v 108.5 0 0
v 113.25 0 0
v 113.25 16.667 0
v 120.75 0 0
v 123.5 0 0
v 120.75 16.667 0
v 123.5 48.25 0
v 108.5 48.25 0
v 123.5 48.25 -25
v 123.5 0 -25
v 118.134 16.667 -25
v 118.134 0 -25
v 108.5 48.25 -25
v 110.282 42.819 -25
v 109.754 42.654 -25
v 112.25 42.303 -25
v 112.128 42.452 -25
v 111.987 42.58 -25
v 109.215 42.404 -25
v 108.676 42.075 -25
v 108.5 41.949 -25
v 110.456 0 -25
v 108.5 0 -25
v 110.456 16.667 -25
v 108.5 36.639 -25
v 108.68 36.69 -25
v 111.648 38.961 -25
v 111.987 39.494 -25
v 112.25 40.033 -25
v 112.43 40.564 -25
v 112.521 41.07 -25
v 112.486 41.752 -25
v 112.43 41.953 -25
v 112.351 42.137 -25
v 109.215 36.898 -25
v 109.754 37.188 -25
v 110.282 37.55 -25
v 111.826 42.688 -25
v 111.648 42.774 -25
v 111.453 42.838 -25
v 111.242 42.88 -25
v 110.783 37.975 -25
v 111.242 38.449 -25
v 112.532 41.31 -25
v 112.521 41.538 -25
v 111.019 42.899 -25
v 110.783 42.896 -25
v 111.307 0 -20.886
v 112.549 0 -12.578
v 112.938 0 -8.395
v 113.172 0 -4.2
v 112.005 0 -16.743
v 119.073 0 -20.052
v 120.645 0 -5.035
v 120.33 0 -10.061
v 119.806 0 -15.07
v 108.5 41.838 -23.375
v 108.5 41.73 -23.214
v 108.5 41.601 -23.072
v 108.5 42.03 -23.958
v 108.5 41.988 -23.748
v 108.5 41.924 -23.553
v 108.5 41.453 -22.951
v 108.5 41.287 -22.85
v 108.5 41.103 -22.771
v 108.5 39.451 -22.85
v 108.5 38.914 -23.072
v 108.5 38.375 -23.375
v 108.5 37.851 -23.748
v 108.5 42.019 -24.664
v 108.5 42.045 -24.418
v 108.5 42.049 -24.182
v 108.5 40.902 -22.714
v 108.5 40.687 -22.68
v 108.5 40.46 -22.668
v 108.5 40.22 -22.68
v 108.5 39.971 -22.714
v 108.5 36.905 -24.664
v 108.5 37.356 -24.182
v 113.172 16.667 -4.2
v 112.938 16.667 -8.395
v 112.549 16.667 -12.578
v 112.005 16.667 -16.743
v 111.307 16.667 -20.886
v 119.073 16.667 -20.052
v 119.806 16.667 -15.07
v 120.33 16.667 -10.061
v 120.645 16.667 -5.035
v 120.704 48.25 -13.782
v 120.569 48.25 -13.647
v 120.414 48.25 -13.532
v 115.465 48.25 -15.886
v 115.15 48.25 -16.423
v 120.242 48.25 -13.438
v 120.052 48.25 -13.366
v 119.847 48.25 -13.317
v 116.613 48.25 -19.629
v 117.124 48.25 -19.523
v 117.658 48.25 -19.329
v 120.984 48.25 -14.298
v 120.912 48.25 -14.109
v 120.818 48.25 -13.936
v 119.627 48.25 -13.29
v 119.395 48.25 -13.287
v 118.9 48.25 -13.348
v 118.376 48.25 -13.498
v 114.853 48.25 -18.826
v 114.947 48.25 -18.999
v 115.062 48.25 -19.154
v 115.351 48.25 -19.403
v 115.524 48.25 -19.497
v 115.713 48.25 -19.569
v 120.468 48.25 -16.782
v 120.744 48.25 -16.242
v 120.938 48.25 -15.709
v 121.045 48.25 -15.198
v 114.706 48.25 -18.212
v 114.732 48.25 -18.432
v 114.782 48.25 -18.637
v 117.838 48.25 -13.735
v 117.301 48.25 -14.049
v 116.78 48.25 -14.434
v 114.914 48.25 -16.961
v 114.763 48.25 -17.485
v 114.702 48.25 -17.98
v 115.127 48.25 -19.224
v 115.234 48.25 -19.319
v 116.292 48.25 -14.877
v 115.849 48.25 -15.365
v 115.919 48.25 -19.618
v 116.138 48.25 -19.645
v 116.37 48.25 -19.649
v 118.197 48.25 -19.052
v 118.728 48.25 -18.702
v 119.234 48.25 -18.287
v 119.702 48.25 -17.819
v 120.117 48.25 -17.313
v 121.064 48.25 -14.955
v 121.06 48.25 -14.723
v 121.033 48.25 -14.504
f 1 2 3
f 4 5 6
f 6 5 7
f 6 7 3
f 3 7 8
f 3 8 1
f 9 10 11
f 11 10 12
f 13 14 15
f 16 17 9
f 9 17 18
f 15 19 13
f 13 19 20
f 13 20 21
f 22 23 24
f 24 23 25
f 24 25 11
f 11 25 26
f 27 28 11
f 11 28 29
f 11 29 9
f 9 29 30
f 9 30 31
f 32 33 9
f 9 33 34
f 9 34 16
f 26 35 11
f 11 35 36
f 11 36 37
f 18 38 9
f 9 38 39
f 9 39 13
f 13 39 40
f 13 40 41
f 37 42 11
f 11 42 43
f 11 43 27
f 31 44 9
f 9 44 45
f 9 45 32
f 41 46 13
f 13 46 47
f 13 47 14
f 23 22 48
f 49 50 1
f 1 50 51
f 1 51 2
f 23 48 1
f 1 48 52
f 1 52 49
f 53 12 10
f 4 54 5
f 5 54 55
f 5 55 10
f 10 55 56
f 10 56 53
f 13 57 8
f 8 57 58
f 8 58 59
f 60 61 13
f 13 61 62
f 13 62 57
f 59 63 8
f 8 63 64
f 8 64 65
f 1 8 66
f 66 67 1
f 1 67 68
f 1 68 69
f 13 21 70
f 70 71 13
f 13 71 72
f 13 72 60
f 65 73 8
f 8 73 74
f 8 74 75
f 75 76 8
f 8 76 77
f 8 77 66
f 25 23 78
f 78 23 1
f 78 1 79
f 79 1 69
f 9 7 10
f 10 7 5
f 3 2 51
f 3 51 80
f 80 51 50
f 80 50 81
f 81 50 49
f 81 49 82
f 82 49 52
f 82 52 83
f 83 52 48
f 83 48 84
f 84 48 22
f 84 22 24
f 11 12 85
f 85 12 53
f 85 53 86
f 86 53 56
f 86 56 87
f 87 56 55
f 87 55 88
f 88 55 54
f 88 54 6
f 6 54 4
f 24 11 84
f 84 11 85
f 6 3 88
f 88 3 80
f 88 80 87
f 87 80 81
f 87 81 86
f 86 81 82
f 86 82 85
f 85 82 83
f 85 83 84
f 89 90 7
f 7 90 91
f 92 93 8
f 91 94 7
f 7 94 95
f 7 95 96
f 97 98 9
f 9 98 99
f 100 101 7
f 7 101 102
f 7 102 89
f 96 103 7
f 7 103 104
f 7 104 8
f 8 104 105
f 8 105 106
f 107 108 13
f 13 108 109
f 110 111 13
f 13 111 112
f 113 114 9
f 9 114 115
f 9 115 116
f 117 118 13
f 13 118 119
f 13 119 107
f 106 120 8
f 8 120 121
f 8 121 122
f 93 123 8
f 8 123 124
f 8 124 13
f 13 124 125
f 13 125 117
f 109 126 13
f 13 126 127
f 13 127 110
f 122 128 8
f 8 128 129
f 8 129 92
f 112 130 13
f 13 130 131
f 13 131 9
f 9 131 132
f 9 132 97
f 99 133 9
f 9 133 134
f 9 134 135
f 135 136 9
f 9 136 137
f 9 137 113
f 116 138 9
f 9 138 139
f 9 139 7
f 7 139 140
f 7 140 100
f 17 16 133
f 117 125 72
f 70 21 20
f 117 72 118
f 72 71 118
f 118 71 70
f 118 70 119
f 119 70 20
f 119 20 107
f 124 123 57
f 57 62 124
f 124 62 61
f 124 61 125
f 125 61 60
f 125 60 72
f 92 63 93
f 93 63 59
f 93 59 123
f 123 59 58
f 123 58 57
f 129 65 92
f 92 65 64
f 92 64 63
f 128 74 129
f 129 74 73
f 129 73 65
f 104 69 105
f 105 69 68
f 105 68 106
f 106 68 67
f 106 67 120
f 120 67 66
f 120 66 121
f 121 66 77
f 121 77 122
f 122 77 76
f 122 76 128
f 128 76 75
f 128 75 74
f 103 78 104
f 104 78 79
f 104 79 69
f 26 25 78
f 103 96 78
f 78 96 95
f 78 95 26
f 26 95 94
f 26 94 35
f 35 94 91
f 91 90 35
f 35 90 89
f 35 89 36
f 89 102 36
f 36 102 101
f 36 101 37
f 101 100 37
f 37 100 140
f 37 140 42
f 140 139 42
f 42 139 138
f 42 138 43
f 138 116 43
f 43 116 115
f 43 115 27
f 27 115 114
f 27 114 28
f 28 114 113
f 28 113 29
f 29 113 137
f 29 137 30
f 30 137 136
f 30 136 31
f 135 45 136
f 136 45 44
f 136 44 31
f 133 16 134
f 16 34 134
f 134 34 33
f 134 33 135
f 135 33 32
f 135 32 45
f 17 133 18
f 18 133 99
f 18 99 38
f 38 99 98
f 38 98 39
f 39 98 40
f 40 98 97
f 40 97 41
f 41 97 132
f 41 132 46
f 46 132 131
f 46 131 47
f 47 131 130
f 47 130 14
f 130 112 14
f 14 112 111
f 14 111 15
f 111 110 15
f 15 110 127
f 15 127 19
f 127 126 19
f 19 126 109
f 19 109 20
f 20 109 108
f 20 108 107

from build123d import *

# Parameters (mm, degrees)
SKETCH1_W           = 15
SKETCH1_H           = 25
BOSS_EXTRUDE1_DEPTH = 42
CUT_EXTRUDE1_DEPTH  = 16.666666667
SKETCH3_W           = 15
SKETCH3_H           = 25
BOSS_EXTRUDE2_DEPTH = 6.25
CUT_EXTRUDE2_REACH  = 136.927
SKETCH5_R           = 2.25


with BuildPart() as part:
    # Sketch1 → Boss-Extrude1 (new body)
    with BuildSketch(Plane(origin=(0, 0, 0), x_dir=(1, 0, 0), z_dir=(0, 1, 0))):
        with Locations((116, 12.5)):
            Rectangle(SKETCH1_W, SKETCH1_H)
    extrude(amount=BOSS_EXTRUDE1_DEPTH)

    # Sketch2 → Cut-Extrude1 (cut)
    with BuildSketch(Plane(origin=(0, 0, 0), x_dir=(1, 0, 0), z_dir=(0, 1, 0))):
        with BuildLine():
            Line((110.45615646, 25), (118.133663703, 25))
            ThreePointArc((118.133663703, 25), (120.094134728, 12.568265748), (120.75, 0))
            Line((120.75, 0), (113.25, 0))
            ThreePointArc((113.25, 0), (112.549371875, 12.57781342), (110.45615646, 25))
        make_face()
    extrude(amount=CUT_EXTRUDE1_DEPTH, mode=Mode.SUBTRACT)

    # Sketch3 → Boss-Extrude2 (add)
    with BuildSketch(Plane(origin=(0, 42, 0), x_dir=(1, 0, 0), z_dir=(0, 1, 0))):
        with Locations((116, 12.5)):
            Rectangle(SKETCH3_W, SKETCH3_H)
    extrude(amount=BOSS_EXTRUDE2_DEPTH)

    # Cut-Extrude2: up to this plane
    cut_extrude2_end = Plane(origin=(0, 48.25, 0), z_dir=(0, -1, 0))
    # Sketch5 → Cut-Extrude2 (cut, up to the surface)
    with BuildSketch(Plane(origin=(0, 0, 0), x_dir=(0.7071067811865464, 0, -0.7071067811865488), z_dir=(0.577381545199981, 0.5772877120855483, 0.577381545199979)), mode=Mode.PRIVATE) as cut_extrude2_sk1:
        with Locations(Location((95, -2, 0), (0, 0, 105.498899772))):
            Circle(SKETCH5_R)
    cut_extrude2_tool1 = split(extrude(cut_extrude2_sk1.sketch, amount=CUT_EXTRUDE2_REACH, mode=Mode.PRIVATE), bisect_by=cut_extrude2_end, keep=Keep.BOTH, mode=Mode.PRIVATE)
    add(cut_extrude2_tool1.solids().sort_by_distance((67.991552, -1.633082, -66.358736))[0], mode=Mode.SUBTRACT)


solid = part.part
